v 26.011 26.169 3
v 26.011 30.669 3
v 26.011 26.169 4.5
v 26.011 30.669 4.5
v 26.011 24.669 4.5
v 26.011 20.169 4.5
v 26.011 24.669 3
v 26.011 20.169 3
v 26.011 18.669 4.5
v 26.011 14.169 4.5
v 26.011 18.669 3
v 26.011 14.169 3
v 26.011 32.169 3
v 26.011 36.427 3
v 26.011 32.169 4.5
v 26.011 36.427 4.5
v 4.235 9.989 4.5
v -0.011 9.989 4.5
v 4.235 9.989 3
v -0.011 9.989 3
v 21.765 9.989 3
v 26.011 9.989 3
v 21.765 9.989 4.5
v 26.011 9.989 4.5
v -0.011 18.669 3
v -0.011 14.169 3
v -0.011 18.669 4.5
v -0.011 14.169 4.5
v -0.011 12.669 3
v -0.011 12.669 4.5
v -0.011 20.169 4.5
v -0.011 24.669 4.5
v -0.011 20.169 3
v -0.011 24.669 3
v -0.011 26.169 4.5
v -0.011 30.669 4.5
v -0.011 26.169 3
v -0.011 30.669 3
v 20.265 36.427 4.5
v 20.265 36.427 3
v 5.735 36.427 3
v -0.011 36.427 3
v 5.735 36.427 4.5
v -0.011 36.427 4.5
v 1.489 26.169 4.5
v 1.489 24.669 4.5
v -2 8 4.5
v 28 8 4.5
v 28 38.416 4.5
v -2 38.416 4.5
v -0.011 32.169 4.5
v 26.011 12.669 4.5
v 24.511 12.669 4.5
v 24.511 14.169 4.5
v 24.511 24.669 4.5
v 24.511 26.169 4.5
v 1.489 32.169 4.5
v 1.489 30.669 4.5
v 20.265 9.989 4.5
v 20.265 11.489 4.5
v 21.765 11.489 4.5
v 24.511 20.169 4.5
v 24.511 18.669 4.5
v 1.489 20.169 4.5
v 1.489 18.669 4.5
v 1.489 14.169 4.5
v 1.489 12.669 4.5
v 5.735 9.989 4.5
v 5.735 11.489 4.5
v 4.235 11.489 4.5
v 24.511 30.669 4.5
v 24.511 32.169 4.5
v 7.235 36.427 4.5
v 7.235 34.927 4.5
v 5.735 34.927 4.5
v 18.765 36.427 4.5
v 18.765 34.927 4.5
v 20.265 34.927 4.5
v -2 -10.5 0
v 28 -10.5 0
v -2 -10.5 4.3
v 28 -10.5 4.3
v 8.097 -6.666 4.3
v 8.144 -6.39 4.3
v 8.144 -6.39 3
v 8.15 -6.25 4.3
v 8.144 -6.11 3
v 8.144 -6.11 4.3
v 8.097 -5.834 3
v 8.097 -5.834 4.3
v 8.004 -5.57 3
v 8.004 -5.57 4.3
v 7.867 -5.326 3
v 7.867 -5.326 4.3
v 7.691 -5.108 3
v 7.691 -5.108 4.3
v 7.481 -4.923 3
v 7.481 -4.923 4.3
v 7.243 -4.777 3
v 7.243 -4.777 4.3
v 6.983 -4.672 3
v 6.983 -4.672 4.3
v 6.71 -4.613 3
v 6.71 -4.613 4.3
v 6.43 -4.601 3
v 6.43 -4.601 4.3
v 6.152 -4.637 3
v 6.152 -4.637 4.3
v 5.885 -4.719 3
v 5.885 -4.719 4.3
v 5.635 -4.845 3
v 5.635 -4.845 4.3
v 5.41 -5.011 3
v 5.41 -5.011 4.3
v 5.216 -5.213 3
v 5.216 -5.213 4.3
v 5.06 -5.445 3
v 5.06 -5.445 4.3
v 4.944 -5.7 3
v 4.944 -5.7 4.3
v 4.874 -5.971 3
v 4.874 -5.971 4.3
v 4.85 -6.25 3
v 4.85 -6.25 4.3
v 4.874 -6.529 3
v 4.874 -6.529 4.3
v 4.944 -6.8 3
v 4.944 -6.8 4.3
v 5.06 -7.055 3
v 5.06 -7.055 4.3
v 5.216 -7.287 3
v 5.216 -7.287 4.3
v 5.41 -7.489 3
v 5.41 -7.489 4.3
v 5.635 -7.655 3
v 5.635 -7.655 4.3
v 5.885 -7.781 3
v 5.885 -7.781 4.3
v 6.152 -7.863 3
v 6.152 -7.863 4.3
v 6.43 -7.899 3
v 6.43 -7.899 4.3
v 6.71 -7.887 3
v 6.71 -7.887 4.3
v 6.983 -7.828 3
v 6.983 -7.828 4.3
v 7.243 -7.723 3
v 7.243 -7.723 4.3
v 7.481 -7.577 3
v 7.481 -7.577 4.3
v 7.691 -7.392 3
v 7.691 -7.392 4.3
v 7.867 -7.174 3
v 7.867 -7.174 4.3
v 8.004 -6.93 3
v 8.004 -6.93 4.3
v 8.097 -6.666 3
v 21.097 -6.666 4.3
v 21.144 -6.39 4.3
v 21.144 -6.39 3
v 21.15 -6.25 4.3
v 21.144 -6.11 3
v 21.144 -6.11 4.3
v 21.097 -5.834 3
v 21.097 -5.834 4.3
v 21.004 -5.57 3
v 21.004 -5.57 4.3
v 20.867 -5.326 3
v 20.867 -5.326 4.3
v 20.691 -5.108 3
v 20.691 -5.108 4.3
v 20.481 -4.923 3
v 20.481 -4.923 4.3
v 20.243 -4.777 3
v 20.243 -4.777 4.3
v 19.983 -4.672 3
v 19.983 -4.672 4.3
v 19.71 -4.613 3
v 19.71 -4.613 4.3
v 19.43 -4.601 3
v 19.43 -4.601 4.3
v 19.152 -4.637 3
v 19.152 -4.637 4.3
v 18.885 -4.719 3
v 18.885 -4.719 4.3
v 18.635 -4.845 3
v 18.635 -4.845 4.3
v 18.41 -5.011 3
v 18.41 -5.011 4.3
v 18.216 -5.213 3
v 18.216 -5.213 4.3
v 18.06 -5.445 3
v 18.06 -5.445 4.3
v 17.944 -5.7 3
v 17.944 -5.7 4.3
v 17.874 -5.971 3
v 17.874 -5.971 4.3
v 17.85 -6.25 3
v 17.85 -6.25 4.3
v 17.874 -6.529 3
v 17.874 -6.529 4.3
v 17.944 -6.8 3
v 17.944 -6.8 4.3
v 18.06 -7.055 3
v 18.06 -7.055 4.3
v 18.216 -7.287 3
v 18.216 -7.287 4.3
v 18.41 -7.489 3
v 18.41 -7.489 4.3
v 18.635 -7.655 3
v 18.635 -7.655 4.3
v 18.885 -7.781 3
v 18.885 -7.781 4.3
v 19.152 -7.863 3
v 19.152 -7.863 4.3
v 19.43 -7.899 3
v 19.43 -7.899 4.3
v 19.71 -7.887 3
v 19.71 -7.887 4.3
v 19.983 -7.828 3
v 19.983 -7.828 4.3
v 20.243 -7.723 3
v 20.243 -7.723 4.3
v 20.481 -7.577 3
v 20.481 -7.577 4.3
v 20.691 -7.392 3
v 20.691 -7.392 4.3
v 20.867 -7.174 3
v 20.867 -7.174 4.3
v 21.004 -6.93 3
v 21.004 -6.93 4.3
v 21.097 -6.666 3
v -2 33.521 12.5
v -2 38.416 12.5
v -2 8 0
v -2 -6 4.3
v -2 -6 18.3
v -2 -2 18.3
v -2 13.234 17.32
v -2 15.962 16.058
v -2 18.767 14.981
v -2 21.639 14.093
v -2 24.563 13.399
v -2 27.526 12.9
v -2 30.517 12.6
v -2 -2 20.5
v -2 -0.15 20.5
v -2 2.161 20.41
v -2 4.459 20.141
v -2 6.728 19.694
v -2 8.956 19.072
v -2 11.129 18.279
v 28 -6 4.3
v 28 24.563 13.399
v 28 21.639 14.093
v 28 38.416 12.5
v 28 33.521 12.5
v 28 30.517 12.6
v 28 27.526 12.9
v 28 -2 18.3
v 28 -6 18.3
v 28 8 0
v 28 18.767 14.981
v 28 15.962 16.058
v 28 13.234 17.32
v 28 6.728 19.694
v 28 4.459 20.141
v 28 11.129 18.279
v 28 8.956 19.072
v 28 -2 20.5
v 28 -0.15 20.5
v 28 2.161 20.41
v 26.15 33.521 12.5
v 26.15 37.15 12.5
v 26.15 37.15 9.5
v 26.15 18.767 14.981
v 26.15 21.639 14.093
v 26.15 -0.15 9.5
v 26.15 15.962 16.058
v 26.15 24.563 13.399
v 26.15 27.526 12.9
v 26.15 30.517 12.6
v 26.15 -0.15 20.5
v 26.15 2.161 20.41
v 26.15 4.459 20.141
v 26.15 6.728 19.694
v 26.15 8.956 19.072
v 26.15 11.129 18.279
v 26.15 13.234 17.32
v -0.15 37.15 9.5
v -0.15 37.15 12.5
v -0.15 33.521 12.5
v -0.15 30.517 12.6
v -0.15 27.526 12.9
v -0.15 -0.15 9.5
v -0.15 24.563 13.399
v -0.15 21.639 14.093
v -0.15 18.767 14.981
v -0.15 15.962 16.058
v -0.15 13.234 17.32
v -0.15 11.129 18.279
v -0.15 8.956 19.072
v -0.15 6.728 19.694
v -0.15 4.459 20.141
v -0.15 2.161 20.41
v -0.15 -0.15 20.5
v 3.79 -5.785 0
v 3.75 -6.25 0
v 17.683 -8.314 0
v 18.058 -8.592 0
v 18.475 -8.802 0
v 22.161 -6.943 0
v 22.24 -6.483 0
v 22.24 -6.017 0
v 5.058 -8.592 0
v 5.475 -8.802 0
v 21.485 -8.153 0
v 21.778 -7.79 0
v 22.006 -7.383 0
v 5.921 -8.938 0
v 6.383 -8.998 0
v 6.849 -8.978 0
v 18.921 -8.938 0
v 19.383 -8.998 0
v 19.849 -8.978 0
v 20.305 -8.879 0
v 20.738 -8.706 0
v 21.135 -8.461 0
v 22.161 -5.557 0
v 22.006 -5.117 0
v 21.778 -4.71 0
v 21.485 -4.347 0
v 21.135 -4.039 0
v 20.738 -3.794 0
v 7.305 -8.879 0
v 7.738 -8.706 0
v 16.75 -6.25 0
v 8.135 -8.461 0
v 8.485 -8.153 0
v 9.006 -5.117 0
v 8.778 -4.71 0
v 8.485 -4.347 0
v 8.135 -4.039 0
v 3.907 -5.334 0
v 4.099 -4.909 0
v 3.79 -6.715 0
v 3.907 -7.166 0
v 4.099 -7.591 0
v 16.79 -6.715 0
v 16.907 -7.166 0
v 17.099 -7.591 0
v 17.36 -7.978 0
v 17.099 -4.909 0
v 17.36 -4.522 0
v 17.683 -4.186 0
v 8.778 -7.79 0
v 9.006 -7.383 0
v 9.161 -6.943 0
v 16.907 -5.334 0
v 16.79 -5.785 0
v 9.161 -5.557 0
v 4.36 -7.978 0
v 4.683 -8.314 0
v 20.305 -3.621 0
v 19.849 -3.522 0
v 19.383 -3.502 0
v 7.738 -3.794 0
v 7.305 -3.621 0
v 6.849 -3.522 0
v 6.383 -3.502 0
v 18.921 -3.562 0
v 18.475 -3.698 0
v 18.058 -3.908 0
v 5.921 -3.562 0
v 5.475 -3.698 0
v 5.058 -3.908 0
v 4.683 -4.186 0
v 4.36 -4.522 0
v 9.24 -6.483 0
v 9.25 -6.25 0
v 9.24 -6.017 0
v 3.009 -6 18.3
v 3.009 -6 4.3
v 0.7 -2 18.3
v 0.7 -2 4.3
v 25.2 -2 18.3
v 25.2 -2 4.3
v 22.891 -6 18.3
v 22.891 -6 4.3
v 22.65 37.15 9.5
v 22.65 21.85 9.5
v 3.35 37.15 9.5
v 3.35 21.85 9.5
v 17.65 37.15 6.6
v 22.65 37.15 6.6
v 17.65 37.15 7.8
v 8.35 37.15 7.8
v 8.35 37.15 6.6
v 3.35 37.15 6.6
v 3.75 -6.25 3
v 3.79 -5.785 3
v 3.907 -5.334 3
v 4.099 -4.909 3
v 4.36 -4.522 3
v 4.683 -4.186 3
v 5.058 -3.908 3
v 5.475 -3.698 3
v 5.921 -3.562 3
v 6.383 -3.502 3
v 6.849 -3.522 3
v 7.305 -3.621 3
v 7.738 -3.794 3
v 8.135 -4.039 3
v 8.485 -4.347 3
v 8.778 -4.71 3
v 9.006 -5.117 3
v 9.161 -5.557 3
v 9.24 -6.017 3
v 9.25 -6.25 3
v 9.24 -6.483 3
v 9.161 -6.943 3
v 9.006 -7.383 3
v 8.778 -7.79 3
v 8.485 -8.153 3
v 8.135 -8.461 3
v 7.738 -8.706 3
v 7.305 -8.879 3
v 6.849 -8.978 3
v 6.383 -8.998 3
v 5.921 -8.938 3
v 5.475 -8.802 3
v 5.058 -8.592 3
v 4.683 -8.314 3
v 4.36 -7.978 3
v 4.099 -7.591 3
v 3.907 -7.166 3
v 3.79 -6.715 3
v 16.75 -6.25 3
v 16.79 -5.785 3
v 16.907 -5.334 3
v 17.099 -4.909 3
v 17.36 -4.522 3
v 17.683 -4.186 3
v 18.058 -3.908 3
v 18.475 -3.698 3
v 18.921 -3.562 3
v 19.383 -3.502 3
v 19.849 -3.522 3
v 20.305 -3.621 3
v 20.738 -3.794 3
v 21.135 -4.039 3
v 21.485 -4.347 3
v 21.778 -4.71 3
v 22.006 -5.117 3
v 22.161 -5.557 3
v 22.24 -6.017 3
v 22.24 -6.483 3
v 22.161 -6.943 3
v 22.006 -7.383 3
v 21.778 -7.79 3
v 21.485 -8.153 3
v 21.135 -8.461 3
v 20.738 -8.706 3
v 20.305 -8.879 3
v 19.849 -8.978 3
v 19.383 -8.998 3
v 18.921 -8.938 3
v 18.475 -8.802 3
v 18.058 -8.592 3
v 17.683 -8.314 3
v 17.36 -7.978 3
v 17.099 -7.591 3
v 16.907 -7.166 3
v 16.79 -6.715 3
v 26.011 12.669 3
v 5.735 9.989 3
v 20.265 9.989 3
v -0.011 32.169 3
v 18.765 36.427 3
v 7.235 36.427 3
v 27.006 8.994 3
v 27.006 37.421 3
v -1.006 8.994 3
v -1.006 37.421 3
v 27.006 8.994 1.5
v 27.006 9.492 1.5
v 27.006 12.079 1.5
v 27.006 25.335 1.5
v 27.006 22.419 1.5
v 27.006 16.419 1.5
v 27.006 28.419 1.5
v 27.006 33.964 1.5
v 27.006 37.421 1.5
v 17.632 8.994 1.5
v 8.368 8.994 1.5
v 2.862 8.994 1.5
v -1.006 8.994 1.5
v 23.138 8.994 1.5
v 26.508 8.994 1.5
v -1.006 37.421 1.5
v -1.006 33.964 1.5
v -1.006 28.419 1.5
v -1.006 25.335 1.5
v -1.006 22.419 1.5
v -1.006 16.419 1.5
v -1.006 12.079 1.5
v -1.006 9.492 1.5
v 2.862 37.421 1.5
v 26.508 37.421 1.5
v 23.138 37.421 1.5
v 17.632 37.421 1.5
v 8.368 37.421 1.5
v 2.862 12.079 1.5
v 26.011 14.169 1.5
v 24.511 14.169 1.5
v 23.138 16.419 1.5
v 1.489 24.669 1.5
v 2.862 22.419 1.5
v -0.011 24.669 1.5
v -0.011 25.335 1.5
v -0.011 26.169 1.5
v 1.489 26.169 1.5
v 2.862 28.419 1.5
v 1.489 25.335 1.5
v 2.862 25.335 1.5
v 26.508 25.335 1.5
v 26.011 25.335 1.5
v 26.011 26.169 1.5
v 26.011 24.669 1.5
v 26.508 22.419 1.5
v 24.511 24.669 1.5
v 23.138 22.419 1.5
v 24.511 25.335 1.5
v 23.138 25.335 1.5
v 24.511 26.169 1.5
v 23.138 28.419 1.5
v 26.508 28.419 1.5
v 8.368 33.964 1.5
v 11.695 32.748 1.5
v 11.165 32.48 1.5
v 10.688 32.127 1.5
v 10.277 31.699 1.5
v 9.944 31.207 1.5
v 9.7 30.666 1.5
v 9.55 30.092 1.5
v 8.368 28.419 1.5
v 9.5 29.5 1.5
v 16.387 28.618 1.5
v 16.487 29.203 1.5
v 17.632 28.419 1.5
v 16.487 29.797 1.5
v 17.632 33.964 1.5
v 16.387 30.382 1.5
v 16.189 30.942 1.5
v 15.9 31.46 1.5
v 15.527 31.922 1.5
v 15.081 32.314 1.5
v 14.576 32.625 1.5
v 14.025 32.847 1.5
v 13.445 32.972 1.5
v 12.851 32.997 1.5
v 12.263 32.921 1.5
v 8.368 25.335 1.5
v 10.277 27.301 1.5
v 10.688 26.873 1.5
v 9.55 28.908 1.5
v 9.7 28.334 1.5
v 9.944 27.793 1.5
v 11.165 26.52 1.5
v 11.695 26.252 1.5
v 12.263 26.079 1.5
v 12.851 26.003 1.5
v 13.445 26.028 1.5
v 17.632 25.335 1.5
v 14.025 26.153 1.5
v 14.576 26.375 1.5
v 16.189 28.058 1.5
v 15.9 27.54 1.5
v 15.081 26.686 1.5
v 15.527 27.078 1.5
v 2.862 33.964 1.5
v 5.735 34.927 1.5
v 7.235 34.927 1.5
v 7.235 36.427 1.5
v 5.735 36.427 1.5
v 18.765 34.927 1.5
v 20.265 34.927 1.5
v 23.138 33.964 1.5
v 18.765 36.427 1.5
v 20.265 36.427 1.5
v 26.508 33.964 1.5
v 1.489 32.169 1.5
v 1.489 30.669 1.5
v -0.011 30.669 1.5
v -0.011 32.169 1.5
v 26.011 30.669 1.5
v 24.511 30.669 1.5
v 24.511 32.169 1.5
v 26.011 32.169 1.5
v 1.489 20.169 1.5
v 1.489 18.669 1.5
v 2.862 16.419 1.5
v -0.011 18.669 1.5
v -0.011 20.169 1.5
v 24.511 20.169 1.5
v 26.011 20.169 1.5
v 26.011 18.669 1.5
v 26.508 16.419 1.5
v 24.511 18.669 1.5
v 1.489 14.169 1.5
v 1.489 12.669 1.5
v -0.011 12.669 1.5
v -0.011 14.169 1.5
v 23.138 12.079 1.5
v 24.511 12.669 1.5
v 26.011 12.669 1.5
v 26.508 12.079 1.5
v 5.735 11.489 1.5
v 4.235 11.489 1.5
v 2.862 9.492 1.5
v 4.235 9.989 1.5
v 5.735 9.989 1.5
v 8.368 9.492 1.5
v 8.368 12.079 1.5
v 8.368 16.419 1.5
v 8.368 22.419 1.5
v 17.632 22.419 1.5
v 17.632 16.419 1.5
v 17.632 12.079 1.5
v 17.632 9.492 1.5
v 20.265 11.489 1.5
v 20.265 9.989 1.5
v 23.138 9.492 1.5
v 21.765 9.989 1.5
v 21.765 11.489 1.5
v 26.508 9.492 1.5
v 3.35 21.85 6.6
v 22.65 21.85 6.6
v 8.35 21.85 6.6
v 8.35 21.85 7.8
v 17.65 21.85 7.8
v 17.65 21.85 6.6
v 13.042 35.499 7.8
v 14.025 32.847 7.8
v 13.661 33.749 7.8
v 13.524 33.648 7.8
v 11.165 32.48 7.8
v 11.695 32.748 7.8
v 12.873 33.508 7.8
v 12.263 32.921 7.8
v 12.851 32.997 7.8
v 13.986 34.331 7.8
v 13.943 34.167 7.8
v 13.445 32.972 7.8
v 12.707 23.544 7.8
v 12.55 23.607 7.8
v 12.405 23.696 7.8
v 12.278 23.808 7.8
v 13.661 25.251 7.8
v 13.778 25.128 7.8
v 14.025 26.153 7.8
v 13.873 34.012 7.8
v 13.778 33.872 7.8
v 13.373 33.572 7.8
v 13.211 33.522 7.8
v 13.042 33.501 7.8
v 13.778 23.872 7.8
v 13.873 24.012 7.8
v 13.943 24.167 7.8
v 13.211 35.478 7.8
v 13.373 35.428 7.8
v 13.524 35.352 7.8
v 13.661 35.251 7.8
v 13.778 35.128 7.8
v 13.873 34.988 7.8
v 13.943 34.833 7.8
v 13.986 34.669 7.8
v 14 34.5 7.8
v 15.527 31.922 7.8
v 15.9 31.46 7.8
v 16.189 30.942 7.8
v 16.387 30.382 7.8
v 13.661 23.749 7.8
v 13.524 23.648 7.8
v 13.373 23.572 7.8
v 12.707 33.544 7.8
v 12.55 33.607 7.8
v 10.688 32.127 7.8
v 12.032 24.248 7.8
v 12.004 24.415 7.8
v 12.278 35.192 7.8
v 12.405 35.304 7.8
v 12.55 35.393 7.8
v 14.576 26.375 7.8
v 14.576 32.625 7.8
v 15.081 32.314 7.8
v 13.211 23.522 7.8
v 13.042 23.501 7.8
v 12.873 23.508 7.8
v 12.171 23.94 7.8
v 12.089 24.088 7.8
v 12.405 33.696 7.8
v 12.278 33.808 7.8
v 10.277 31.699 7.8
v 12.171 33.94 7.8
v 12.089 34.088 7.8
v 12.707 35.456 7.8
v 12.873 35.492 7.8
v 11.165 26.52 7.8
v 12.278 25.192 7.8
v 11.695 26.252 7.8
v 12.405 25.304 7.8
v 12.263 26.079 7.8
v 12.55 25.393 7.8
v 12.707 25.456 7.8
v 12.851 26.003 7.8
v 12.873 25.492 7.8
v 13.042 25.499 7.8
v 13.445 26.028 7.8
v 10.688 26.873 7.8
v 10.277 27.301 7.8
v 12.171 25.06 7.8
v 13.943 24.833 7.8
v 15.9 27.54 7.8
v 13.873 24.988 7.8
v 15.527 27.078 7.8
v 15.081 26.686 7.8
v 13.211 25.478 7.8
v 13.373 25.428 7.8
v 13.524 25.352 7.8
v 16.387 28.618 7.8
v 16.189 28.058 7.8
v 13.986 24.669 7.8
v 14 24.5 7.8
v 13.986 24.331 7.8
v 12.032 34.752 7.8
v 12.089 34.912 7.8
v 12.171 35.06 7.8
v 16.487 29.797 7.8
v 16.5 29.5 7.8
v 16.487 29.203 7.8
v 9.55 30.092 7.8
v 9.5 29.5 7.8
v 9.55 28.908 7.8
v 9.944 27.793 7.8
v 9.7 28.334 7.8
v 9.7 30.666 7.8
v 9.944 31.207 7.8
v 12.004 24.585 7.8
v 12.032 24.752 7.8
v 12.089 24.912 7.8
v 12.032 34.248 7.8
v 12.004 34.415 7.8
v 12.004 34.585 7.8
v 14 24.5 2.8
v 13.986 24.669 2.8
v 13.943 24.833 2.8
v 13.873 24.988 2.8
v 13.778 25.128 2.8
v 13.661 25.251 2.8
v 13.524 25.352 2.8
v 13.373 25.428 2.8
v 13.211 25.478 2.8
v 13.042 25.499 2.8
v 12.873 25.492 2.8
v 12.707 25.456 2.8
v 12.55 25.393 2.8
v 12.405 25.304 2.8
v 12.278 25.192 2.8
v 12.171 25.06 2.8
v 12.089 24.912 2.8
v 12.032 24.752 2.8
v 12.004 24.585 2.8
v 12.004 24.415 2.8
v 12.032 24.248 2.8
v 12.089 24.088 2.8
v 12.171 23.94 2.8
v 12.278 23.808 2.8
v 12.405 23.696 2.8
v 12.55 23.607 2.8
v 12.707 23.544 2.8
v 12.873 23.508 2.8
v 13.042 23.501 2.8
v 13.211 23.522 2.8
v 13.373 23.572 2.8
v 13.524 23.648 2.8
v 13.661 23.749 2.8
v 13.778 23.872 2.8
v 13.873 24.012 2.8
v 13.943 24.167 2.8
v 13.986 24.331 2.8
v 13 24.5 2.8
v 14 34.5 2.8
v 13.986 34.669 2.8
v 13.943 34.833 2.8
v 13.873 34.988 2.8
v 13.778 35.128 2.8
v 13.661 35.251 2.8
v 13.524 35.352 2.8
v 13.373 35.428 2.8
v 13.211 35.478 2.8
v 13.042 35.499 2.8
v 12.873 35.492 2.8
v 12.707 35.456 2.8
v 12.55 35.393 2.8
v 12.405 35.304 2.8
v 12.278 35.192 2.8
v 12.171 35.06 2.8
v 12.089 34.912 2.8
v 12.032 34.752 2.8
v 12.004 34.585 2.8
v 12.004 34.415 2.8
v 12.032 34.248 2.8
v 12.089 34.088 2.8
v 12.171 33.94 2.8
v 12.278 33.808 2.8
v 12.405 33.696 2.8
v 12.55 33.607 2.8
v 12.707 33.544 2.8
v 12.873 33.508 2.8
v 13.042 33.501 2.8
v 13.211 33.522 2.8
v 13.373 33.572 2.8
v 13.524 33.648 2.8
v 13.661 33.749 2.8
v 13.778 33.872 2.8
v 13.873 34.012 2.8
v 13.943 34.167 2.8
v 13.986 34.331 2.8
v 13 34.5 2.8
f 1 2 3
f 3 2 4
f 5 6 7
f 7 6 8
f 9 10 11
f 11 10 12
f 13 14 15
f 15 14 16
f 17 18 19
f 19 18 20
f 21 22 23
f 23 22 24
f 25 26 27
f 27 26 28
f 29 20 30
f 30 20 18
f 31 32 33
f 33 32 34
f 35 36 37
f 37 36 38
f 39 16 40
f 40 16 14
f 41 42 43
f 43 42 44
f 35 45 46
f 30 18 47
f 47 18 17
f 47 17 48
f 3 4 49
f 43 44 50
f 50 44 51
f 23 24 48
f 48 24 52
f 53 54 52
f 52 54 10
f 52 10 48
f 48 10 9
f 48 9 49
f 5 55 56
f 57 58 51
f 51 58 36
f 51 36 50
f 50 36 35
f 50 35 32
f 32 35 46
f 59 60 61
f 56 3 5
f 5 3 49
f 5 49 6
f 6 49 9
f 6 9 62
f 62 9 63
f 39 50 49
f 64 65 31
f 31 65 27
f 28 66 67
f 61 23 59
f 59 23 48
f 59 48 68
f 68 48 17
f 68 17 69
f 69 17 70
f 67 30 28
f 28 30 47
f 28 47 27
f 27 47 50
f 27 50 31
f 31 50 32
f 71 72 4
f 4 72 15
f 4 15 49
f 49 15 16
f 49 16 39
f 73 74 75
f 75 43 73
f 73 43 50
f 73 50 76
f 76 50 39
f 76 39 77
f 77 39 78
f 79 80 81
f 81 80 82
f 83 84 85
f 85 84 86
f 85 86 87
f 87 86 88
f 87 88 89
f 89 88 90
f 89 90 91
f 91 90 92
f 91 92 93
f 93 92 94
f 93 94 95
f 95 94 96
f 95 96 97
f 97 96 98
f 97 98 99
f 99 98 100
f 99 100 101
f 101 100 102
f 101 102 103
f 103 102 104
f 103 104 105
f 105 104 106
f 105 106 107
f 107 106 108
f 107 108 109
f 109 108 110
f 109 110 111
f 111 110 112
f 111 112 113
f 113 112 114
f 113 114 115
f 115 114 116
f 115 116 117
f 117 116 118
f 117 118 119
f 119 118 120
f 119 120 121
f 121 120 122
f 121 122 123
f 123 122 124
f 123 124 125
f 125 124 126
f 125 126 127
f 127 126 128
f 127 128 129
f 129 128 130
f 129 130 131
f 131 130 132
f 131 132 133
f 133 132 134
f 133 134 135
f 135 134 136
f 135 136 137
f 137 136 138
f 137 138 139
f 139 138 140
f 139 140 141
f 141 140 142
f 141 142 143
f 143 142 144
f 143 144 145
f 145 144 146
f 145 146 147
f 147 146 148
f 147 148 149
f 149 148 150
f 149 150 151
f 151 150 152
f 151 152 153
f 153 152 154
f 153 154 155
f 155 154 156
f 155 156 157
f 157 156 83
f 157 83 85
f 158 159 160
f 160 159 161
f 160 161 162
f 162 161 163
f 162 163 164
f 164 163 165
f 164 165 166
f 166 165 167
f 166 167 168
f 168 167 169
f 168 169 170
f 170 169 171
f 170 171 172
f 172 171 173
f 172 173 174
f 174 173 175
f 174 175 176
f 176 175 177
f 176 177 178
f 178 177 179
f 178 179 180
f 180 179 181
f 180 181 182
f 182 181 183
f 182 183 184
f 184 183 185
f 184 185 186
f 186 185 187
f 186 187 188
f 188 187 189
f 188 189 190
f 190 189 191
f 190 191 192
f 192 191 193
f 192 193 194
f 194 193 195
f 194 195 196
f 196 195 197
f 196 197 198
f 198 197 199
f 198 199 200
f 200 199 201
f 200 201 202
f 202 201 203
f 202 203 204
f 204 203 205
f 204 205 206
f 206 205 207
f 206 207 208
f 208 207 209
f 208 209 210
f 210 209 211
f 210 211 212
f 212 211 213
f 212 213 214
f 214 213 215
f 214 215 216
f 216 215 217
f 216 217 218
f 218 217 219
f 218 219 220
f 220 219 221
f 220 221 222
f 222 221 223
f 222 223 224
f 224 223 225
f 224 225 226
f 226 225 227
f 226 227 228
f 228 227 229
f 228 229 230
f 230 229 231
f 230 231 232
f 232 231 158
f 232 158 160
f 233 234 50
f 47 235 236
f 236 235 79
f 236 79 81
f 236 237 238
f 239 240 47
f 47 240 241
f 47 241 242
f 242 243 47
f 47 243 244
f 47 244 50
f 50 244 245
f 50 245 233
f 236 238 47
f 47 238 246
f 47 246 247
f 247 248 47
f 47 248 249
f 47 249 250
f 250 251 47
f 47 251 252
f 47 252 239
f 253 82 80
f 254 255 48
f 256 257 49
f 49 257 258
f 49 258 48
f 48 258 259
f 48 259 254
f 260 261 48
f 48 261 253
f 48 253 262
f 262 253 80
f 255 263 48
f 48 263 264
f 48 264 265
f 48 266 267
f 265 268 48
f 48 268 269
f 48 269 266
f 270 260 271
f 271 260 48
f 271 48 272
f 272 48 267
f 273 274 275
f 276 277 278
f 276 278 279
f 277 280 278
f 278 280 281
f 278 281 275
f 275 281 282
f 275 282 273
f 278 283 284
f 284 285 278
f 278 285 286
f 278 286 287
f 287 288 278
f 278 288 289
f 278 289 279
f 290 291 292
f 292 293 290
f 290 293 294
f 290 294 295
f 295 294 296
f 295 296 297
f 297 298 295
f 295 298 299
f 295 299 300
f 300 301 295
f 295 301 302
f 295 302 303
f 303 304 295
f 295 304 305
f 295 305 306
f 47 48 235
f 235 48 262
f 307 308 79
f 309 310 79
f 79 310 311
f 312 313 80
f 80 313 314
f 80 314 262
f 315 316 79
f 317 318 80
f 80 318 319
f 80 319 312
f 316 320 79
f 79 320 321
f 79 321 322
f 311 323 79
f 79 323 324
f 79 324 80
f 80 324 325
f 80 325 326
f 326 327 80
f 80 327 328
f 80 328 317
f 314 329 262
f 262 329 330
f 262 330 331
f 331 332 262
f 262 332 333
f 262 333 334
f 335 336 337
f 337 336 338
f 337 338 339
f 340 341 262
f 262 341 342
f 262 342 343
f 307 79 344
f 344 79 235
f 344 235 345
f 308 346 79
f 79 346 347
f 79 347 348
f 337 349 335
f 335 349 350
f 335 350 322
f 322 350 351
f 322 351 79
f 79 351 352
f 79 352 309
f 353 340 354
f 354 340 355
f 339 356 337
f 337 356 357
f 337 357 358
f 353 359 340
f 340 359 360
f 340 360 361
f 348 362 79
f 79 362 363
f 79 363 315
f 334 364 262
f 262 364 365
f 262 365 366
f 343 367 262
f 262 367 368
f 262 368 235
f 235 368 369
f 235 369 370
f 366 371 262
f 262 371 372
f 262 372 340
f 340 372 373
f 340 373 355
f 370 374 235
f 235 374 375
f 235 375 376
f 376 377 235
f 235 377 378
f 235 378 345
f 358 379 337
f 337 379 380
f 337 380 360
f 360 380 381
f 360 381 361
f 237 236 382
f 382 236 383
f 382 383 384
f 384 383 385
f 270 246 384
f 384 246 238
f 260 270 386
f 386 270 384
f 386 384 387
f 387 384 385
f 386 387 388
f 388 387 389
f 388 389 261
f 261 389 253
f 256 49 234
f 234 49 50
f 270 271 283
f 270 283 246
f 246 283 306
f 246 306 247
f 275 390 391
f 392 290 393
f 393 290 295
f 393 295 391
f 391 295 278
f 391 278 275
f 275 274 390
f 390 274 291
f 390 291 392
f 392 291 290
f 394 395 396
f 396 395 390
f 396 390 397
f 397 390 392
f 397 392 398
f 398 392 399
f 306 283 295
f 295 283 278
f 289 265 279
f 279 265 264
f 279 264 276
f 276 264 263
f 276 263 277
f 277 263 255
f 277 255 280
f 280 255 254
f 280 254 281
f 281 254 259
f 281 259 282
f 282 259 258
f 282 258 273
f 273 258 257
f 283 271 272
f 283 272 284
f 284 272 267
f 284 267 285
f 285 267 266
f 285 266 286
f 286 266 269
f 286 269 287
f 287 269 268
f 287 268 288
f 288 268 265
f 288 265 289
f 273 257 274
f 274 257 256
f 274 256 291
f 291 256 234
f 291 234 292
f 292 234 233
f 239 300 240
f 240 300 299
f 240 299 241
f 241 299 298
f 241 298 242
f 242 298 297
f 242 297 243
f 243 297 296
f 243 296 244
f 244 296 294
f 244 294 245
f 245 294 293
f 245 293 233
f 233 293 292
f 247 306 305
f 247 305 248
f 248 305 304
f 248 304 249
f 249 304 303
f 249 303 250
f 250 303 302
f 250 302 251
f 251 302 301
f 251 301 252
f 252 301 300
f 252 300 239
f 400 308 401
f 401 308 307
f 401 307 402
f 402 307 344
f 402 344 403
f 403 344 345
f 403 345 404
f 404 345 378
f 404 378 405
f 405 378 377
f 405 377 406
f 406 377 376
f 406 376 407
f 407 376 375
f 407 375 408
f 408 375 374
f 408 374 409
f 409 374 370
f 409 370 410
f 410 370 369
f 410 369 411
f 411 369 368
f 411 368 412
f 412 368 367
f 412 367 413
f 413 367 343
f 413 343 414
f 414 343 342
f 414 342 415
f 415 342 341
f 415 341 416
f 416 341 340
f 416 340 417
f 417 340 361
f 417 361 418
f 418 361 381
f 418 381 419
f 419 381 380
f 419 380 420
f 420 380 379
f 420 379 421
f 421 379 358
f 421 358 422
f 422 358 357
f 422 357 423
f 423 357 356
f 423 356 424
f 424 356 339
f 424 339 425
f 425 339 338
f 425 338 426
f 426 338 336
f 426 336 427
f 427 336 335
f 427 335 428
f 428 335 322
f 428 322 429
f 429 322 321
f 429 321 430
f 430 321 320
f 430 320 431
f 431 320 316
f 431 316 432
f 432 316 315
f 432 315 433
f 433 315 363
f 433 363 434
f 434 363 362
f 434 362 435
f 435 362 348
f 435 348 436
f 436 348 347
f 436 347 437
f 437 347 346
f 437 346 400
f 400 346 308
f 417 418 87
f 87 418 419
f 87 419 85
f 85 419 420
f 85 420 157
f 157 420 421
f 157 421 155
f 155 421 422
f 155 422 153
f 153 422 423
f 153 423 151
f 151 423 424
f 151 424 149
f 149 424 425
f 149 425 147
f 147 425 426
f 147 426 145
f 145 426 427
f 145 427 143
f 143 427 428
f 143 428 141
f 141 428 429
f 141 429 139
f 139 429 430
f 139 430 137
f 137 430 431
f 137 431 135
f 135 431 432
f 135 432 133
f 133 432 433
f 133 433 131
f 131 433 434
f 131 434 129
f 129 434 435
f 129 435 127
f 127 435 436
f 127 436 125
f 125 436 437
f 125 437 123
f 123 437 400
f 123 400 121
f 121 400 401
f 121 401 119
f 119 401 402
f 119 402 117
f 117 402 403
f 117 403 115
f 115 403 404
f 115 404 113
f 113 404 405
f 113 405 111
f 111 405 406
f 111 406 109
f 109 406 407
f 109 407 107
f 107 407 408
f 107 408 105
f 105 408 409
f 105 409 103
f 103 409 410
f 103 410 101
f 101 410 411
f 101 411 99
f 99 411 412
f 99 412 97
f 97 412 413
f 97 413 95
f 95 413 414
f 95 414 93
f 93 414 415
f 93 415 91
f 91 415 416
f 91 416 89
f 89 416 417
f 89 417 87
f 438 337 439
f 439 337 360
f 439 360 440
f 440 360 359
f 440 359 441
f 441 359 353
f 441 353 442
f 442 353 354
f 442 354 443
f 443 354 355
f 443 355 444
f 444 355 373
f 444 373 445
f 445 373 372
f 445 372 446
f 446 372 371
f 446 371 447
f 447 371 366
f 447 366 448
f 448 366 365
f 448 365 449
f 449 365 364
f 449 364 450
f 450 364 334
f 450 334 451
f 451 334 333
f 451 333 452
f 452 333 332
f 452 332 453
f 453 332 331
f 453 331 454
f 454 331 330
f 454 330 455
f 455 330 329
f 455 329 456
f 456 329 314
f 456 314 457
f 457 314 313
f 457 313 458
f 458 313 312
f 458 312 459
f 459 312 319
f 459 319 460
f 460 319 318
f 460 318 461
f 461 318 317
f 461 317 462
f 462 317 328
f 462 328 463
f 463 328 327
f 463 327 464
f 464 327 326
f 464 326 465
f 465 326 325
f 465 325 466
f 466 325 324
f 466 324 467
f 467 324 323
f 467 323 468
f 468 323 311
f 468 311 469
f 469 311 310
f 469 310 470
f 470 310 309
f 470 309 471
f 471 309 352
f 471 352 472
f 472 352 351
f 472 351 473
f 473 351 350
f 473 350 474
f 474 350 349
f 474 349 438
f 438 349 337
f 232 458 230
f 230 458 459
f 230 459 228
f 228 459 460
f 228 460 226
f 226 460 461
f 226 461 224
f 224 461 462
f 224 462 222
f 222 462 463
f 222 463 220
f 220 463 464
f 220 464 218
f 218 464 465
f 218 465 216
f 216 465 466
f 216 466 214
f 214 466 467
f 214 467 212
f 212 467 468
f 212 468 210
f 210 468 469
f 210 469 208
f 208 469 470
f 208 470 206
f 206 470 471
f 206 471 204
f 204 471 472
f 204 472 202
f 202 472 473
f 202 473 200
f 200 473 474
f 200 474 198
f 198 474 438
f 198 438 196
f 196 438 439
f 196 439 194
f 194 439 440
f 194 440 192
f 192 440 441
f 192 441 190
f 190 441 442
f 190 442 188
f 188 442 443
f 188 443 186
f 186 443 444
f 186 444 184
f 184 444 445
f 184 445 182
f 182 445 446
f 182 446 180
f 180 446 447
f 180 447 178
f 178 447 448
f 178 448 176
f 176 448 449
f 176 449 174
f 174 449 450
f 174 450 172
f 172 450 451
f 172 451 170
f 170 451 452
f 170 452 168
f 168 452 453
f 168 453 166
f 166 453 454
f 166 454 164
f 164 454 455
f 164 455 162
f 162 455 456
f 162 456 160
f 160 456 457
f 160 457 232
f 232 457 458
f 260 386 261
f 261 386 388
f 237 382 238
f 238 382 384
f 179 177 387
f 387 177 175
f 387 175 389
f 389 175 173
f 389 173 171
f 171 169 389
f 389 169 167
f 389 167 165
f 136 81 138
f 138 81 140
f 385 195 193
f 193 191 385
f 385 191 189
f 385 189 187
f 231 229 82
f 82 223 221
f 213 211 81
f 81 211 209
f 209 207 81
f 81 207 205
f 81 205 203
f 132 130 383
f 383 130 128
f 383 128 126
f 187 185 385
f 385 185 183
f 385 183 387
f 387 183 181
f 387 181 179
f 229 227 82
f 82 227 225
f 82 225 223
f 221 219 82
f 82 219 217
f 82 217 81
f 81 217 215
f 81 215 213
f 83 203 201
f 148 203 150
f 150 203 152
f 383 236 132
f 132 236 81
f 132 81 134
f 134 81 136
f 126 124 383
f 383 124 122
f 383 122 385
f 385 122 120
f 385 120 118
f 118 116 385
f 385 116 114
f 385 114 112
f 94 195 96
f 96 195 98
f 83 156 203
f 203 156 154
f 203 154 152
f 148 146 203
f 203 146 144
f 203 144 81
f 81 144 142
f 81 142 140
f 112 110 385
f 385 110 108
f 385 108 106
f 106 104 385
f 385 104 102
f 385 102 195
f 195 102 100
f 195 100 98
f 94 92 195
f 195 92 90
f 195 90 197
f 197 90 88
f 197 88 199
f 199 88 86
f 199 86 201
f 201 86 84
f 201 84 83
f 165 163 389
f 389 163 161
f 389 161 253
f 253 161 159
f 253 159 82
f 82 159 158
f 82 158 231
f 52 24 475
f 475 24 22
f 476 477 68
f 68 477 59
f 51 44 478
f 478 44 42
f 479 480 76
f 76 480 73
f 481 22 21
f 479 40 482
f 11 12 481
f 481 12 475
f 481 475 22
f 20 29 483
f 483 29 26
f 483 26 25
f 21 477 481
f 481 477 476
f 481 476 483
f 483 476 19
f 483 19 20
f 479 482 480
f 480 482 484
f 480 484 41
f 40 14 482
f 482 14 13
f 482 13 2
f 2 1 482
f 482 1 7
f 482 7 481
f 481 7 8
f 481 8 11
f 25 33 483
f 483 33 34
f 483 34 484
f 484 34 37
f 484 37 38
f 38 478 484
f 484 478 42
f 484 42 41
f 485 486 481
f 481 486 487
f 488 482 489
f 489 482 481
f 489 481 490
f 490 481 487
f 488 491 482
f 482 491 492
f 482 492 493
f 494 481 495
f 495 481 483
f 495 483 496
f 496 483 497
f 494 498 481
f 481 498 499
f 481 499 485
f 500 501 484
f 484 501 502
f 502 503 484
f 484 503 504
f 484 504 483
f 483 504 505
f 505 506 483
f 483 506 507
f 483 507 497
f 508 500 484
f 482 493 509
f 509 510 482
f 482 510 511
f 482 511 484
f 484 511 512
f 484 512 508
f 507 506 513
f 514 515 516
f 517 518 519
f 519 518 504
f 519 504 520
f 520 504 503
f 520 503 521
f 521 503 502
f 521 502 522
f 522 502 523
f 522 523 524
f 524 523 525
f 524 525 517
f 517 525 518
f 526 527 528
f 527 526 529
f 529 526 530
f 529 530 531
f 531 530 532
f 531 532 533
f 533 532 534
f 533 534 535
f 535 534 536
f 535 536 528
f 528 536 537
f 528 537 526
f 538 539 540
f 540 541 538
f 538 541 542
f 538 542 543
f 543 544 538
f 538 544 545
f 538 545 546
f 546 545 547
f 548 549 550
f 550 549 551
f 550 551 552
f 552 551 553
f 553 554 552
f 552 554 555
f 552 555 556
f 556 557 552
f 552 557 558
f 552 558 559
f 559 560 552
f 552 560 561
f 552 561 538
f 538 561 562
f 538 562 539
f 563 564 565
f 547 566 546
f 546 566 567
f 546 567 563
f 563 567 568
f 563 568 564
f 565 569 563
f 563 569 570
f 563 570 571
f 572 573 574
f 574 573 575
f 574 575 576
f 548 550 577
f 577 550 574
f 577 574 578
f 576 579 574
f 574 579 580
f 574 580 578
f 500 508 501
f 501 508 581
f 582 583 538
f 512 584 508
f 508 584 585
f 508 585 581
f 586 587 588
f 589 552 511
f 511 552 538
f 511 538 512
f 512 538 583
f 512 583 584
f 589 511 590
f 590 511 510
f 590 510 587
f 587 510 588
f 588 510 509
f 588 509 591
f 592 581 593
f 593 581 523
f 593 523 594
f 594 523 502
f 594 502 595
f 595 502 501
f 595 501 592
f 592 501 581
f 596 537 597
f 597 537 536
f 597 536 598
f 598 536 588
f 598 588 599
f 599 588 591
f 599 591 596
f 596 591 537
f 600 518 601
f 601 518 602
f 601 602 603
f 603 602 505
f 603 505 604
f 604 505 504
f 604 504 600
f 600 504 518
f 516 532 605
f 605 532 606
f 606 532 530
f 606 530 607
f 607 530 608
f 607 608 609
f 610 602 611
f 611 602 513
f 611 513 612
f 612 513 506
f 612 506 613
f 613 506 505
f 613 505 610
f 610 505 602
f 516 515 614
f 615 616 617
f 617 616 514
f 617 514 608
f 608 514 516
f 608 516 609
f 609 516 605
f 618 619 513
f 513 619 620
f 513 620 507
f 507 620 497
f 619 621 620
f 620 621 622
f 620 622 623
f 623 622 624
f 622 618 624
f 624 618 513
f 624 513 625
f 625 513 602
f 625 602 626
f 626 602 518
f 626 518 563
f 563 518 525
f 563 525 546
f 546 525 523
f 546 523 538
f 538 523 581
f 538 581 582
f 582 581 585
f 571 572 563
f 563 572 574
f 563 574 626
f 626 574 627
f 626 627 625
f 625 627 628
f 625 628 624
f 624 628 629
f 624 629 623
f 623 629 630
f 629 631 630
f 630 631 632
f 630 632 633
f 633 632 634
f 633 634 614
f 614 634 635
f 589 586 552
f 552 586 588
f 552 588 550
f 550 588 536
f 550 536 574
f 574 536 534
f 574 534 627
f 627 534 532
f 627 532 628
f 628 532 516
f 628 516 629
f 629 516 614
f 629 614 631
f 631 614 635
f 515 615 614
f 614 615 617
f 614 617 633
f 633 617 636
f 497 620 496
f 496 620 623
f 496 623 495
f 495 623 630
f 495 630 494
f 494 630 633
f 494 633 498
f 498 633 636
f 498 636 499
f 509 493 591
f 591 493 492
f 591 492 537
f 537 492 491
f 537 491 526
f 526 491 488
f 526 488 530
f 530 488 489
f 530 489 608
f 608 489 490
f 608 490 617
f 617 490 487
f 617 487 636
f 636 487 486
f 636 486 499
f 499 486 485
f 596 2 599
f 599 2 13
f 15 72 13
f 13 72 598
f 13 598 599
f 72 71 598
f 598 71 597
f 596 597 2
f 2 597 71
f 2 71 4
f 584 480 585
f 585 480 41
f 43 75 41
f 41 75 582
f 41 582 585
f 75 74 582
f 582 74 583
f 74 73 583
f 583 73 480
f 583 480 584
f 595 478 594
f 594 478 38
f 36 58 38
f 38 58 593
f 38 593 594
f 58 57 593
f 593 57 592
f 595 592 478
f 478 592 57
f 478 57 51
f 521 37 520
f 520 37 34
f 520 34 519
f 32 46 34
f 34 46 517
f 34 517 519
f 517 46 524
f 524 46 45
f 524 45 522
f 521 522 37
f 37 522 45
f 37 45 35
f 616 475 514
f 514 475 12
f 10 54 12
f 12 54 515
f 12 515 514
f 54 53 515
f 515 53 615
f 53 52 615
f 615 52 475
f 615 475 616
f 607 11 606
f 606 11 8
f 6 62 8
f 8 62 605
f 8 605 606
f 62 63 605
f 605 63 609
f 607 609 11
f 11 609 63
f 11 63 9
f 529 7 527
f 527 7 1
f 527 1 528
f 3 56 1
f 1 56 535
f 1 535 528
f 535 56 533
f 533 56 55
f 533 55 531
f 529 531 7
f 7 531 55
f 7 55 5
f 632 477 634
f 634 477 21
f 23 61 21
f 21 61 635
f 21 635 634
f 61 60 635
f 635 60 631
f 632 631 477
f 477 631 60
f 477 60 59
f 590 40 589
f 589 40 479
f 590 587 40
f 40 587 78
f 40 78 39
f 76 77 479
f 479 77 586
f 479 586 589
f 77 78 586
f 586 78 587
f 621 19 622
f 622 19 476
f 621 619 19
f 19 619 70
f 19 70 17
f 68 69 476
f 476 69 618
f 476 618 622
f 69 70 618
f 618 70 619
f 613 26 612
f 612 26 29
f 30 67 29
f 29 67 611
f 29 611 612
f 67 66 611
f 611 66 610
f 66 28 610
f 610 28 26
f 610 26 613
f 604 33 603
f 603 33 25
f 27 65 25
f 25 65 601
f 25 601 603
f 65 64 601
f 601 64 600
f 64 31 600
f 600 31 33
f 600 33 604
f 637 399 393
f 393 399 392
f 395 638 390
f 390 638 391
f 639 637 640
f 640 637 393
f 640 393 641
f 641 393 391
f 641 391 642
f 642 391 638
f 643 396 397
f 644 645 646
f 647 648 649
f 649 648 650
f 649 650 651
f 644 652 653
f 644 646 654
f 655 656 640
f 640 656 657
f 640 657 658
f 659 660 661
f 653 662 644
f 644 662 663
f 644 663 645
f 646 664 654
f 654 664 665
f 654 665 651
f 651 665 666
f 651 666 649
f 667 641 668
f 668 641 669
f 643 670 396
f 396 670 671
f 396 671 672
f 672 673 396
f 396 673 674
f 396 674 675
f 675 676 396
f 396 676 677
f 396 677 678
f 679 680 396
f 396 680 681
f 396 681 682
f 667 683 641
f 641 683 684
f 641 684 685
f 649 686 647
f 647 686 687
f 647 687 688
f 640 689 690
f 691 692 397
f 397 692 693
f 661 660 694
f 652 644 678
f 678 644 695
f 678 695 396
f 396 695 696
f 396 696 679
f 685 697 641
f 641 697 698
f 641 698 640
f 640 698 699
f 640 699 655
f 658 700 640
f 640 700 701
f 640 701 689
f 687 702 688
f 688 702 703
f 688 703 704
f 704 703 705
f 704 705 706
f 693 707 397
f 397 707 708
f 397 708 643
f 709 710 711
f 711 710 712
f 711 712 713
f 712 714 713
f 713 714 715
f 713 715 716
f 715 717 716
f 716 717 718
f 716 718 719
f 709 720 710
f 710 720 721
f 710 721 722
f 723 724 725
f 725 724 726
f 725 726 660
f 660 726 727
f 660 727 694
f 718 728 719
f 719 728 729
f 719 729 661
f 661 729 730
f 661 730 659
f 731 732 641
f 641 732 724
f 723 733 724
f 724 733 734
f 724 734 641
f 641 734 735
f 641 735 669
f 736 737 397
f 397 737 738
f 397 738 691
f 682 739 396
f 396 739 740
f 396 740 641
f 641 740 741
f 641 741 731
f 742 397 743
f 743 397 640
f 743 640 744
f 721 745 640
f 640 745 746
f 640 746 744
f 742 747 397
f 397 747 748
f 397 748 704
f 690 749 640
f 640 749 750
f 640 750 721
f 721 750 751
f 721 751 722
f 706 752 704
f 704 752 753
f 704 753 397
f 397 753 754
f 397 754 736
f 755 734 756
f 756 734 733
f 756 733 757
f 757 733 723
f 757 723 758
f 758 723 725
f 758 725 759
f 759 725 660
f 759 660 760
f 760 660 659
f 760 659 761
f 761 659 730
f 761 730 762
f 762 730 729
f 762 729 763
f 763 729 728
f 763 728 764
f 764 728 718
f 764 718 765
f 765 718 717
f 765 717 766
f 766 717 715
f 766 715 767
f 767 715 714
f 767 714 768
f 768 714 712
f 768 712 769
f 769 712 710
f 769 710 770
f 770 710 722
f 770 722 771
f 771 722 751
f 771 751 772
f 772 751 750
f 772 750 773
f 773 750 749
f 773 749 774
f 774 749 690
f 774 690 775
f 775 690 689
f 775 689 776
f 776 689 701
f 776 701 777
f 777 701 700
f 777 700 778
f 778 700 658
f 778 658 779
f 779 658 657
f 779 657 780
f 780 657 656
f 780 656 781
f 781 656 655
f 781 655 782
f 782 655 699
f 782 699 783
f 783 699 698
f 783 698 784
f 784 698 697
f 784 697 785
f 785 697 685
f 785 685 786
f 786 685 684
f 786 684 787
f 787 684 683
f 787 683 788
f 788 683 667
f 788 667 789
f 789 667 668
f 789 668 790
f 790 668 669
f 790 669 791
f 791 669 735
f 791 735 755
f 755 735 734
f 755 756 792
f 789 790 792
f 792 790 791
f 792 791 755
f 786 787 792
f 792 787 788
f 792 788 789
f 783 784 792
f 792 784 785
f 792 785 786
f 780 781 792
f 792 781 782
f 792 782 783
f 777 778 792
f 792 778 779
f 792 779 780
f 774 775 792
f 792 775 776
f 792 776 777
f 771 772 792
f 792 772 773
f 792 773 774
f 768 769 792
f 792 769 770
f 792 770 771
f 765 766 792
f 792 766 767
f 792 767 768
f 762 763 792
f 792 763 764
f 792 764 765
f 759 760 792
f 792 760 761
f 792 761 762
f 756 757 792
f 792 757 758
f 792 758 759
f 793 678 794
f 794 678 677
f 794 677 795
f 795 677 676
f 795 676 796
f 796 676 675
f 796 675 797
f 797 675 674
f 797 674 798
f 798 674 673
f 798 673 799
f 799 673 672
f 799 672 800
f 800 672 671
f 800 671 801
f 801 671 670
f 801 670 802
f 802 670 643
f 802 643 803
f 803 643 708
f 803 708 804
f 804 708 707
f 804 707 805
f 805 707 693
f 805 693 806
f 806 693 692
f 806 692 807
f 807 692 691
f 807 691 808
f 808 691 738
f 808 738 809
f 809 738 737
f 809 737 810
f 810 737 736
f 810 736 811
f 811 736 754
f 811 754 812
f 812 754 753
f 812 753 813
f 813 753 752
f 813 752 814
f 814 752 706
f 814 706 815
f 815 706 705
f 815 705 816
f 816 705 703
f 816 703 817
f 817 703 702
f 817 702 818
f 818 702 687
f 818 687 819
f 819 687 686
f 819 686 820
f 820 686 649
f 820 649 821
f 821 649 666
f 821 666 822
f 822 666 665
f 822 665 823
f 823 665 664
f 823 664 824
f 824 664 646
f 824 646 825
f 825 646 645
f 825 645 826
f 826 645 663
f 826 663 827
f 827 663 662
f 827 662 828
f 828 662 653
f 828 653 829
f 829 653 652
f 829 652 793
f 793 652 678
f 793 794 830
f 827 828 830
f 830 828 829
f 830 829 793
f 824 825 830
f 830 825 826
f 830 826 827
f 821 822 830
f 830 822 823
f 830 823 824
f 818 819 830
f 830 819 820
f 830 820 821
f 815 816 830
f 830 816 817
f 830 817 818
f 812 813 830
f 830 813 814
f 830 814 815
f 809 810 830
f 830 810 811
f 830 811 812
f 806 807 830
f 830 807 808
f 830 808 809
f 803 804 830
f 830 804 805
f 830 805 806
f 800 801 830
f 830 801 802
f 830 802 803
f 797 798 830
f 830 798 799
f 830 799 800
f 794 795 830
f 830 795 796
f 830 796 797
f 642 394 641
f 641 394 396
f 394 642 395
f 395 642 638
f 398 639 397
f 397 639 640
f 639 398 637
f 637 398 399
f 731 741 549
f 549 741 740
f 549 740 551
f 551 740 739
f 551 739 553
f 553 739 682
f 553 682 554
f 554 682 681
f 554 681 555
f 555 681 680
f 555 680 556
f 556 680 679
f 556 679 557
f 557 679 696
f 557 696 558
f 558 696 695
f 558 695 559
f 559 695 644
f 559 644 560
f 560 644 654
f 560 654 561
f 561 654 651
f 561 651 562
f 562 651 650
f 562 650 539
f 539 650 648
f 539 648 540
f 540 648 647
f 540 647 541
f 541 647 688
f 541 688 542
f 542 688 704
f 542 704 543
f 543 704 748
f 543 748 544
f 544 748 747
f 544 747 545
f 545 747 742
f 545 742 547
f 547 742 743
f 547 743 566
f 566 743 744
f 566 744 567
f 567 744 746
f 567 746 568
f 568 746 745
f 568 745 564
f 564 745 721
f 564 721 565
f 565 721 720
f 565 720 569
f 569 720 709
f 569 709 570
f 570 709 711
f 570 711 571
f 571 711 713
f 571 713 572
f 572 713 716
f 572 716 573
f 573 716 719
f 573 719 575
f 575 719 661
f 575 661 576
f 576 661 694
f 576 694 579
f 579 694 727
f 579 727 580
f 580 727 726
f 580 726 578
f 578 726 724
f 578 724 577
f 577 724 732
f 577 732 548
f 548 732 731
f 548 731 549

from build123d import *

# Parameters (mm, degrees)
SKETCH2_W               = 30
SKETCH2_H               = 18.5
BOSS_EXTRUDE1_DEPTH     = 4.5
BOSS_EXTRUDE2_DEPTH     = 5
SKETCH4_W               = 26.3
SKETCH4_H               = 37.3
BOSS_EXTRUDE3_DEPTH     = 9
SKETCH5_W               = 30
SKETCH5_H               = 40.415903306
SKETCH5_W_2             = 26.3
SKETCH5_H_2             = 37.3
BOSS_EXTRUDE4_DEPTH     = 2
CUT_EXTRUDE1_DEPTH      = 53.877515324
SKETCH7_R               = 2.75
CUT_EXTRUDE2_DEPTH      = 3
SKETCH8_R               = 1.65
CUT_EXTRUDE3_DEPTH      = 51.656012741
SKETCH9_W               = 0.2
SKETCH9_H               = 4
TOLERANCE_CUT1_DEPTH    = 53.877515324
TOLERANCE_CUT2_DEPTH    = 0.2
SKETCH12_W              = 26.022193388
SKETCH12_H              = 26.438096694
BOSS_EXTRUDE6_DEPTH     = 1.5
SKETCH13_W              = 28.011096694
SKETCH13_H              = 28.427
BOSS_EXTRUDE7_DEPTH     = 1.5
SKETCH16_W              = 1.5
SKETCH16_H              = 1.5
SILICONE_CHANNELS_DEPTH = 3
SKETCH19_W              = 19.3
SKETCH19_H              = 15.3
PCB_CAVITY_DEPTH        = 1.7
SKETCH15_R              = 1
PCB_MOUNT_HOLES_DEPTH   = 5
SKETCH20_W              = 5
SKETCH20_H              = 15.3
SOLDER_CAVITY_DEPTH     = 1.2
SKETCH21_R              = 0.5
AUDIO_CHANNEL_DEPTH     = 50.204386256
SKETCH22_R              = 3.5
CUT_EXTRUDE13_DEPTH     = 52.193570171


with BuildPart() as part:
    # Sketch2 → Boss-Extrude1 (new body)
    with BuildSketch(Plane.XY):
        with Locations((13, -1.25)):
            Rectangle(SKETCH2_W, SKETCH2_H)
    extrude(amount=BOSS_EXTRUDE1_DEPTH)

    # Sketch3 → Boss-Extrude2 (add)
    with BuildSketch(Plane.XY.offset(4.5)):
        Polygon((-2, 38.415903306), (28, 38.415903306), (28, -6), (22.890598923, -6), (25.2, -2), (0.7, -2), (3.009401077, -6), (-2, -6), align=None)
    extrude(amount=BOSS_EXTRUDE2_DEPTH)

    # Sketch4 → Boss-Extrude3 (add)
    with BuildSketch(Plane.XY.offset(9.5)):
        Polygon((-2, 38.415903306), (-2, -6), (3.009401077, -6), (0.7, -2), (25.2, -2), (22.890598923, -6), (28, -6), (28, 38.415903306), align=None)
        with Locations((13, 18.5)):
            Rectangle(SKETCH4_W, SKETCH4_H, mode=Mode.SUBTRACT)
    extrude(amount=BOSS_EXTRUDE3_DEPTH)

    # Sketch5 → Boss-Extrude4 (add)
    with BuildSketch(Plane.XY.offset(18.5)):
        with Locations((13, 18.207951653)):
            Rectangle(SKETCH5_W, SKETCH5_H)
        with Locations((13, 18.5)):
            Rectangle(SKETCH5_W_2, SKETCH5_H_2, mode=Mode.SUBTRACT)
    extrude(amount=BOSS_EXTRUDE4_DEPTH)

    # Sketch6 → Cut-Extrude1 (cut, through all)
    with BuildSketch(Plane(origin=(28, 0, 0), x_dir=(0, 0, -1), z_dir=(1, 0, 0))):
        with BuildLine():
            Line((-12.5, 38.415903306), (-29.920257518, 38.415903306))
            Line((-29.920257518, 38.415903306), (-29.920257518, -0.15))
            Line((-29.920257518, -0.15), (-20.5, -0.15))
            ThreePointArc((-20.5, -0.15), (-19.694107493, 6.728151663), (-17.320084205, 13.23372208))
            ThreePointArc((-17.320084205, 13.23372208), (-13.721563712, 23.094799932), (-12.5, 33.520632668))
            Line((-12.5, 33.520632668), (-12.5, 38.415903306))
        make_face()
    extrude(amount=-CUT_EXTRUDE1_DEPTH, mode=Mode.SUBTRACT)

    # Sketch7 → Cut-Extrude2 (cut)
    with BuildSketch(Plane(origin=(0, 0, 0), x_dir=(-1, 0, 0), z_dir=(0, 0, -1))):
        with Locations((-19.5, -6.25)):
            Circle(SKETCH7_R)
        with Locations(Location((-6.5, -6.25, 0), (0, 0, 180))):
            Circle(SKETCH7_R)
    extrude(amount=-CUT_EXTRUDE2_DEPTH, mode=Mode.SUBTRACT)

    # Sketch8 → Cut-Extrude3 (cut, through all)
    with BuildSketch(Plane(origin=(0, 0, 3), x_dir=(-1, 0, 0), z_dir=(0, 0, -1))):
        with Locations((-19.5, -6.25)):
            Circle(SKETCH8_R)
        with Locations((-6.5, -6.25)):
            Circle(SKETCH8_R)
    extrude(amount=-CUT_EXTRUDE3_DEPTH, mode=Mode.SUBTRACT)

    # Sketch9 → tolerance_cut1 (cut, through all)
    with BuildSketch(Plane.ZY.offset(2)):
        with Locations((18.4, -4)):
            Rectangle(SKETCH9_W, SKETCH9_H)
    extrude(amount=-TOLERANCE_CUT1_DEPTH, mode=Mode.SUBTRACT)

    # Sketch10 → tolerance_cut2 (cut)
    with BuildSketch(Plane.XY.offset(4.5)):
        Polygon((28, -6), (22.890598923, -6), (25.2, -2), (0.7, -2), (3.009401077, -6), (-2, -6), (-2, -10.5), (28, -10.5), align=None)
    extrude(amount=-TOLERANCE_CUT2_DEPTH, mode=Mode.SUBTRACT)

    # Sketch12 → Boss-Extrude6 (add)
    with BuildSketch(Plane(origin=(0, 0, 4.5), x_dir=(-1, 0, 0), z_dir=(0, 0, -1))):
        with Locations((-13, 23.207951653)):
            Rectangle(SKETCH12_W, SKETCH12_H)
    extrude(amount=BOSS_EXTRUDE6_DEPTH)

    # Sketch13 → Boss-Extrude7 (add)
    with BuildSketch(Plane(origin=(0, 0, 3), x_dir=(-1, 0, 0), z_dir=(0, 0, -1))):
        with Locations((-13, 23.207951653)):
            Rectangle(SKETCH13_W, SKETCH13_H)
    extrude(amount=BOSS_EXTRUDE7_DEPTH)

    # Sketch16 → silicone_channels (cut)
    with BuildSketch(Plane(origin=(0, 0, 1.5), x_dir=(-1, 0, 0), z_dir=(0, 0, -1))):
        with Locations((-25.261096694, 25.419380652)):
            Rectangle(SKETCH16_W, SKETCH16_H)
        with Locations((-25.261096694, 31.419380652)):
            Rectangle(SKETCH16_W, SKETCH16_H)
        with Locations((-25.261096694, 19.419380652)):
            Rectangle(SKETCH16_W, SKETCH16_H)
        with Locations((-25.261096694, 13.419380652)):
            Rectangle(SKETCH16_W, SKETCH16_H)
        with Locations((-21.014935628, 10.738903306)):
            Rectangle(SKETCH16_W, SKETCH16_H)
        with Locations((-19.514935628, 35.677)):
            Rectangle(SKETCH16_W, SKETCH16_H)
        with Locations((-4.985064372, 10.738903306)):
            Rectangle(SKETCH16_W, SKETCH16_H)
        with Locations((-0.738903306, 13.419380652)):
            Rectangle(SKETCH16_W, SKETCH16_H)
        with Locations((-0.738903306, 19.419380652)):
            Rectangle(SKETCH16_W, SKETCH16_H)
        with Locations((-0.738903306, 25.419380652)):
            Rectangle(SKETCH16_W, SKETCH16_H)
        with Locations((-0.738903306, 31.419380652)):
            Rectangle(SKETCH16_W, SKETCH16_H)
        with Locations((-6.485064372, 35.677)):
            Rectangle(SKETCH16_W, SKETCH16_H)
    extrude(amount=-SILICONE_CHANNELS_DEPTH, mode=Mode.SUBTRACT)

    # Sketch19 → pcb_cavity (cut)
    with BuildSketch(Plane.XY.offset(9.5)):
        with Locations((13, 29.5)):
            Rectangle(SKETCH19_W, SKETCH19_H)
    extrude(amount=-PCB_CAVITY_DEPTH, mode=Mode.SUBTRACT)

    # Sketch15 → pcb_mount_holes (cut)
    with BuildSketch(Plane.XY.offset(7.8)):
        with Locations((13, 34.5)):
            Circle(SKETCH15_R)
        with Locations((13, 24.5)):
            Circle(SKETCH15_R)
    extrude(amount=-PCB_MOUNT_HOLES_DEPTH, mode=Mode.SUBTRACT)

    # Sketch20 → solder_cavity (cut)
    with BuildSketch(Plane.XY.offset(7.8)):
        with Locations((5.85, 29.5)):
            Rectangle(SKETCH20_W, SKETCH20_H)
        with Locations((20.15, 29.5)):
            Rectangle(SKETCH20_W, SKETCH20_H)
    extrude(amount=-SOLDER_CAVITY_DEPTH, mode=Mode.SUBTRACT)

    # Sketch21 → audio_channel (cut, through all)
    with BuildSketch(Plane.XY.offset(7.8)):
        with Locations((13, 29.5)):
            Circle(SKETCH21_R)
    extrude(amount=-AUDIO_CHANNEL_DEPTH, mode=Mode.SUBTRACT)

    # Sketch22 → Cut-Extrude13 (cut, through all)
    with BuildSketch(Plane(origin=(0, 0, 1.5), x_dir=(-1, 0, 0), z_dir=(0, 0, -1))):
        with Locations((-13, 29.5)):
            Circle(SKETCH22_R)
    extrude(amount=-CUT_EXTRUDE13_DEPTH, mode=Mode.SUBTRACT)


solid = part.part
